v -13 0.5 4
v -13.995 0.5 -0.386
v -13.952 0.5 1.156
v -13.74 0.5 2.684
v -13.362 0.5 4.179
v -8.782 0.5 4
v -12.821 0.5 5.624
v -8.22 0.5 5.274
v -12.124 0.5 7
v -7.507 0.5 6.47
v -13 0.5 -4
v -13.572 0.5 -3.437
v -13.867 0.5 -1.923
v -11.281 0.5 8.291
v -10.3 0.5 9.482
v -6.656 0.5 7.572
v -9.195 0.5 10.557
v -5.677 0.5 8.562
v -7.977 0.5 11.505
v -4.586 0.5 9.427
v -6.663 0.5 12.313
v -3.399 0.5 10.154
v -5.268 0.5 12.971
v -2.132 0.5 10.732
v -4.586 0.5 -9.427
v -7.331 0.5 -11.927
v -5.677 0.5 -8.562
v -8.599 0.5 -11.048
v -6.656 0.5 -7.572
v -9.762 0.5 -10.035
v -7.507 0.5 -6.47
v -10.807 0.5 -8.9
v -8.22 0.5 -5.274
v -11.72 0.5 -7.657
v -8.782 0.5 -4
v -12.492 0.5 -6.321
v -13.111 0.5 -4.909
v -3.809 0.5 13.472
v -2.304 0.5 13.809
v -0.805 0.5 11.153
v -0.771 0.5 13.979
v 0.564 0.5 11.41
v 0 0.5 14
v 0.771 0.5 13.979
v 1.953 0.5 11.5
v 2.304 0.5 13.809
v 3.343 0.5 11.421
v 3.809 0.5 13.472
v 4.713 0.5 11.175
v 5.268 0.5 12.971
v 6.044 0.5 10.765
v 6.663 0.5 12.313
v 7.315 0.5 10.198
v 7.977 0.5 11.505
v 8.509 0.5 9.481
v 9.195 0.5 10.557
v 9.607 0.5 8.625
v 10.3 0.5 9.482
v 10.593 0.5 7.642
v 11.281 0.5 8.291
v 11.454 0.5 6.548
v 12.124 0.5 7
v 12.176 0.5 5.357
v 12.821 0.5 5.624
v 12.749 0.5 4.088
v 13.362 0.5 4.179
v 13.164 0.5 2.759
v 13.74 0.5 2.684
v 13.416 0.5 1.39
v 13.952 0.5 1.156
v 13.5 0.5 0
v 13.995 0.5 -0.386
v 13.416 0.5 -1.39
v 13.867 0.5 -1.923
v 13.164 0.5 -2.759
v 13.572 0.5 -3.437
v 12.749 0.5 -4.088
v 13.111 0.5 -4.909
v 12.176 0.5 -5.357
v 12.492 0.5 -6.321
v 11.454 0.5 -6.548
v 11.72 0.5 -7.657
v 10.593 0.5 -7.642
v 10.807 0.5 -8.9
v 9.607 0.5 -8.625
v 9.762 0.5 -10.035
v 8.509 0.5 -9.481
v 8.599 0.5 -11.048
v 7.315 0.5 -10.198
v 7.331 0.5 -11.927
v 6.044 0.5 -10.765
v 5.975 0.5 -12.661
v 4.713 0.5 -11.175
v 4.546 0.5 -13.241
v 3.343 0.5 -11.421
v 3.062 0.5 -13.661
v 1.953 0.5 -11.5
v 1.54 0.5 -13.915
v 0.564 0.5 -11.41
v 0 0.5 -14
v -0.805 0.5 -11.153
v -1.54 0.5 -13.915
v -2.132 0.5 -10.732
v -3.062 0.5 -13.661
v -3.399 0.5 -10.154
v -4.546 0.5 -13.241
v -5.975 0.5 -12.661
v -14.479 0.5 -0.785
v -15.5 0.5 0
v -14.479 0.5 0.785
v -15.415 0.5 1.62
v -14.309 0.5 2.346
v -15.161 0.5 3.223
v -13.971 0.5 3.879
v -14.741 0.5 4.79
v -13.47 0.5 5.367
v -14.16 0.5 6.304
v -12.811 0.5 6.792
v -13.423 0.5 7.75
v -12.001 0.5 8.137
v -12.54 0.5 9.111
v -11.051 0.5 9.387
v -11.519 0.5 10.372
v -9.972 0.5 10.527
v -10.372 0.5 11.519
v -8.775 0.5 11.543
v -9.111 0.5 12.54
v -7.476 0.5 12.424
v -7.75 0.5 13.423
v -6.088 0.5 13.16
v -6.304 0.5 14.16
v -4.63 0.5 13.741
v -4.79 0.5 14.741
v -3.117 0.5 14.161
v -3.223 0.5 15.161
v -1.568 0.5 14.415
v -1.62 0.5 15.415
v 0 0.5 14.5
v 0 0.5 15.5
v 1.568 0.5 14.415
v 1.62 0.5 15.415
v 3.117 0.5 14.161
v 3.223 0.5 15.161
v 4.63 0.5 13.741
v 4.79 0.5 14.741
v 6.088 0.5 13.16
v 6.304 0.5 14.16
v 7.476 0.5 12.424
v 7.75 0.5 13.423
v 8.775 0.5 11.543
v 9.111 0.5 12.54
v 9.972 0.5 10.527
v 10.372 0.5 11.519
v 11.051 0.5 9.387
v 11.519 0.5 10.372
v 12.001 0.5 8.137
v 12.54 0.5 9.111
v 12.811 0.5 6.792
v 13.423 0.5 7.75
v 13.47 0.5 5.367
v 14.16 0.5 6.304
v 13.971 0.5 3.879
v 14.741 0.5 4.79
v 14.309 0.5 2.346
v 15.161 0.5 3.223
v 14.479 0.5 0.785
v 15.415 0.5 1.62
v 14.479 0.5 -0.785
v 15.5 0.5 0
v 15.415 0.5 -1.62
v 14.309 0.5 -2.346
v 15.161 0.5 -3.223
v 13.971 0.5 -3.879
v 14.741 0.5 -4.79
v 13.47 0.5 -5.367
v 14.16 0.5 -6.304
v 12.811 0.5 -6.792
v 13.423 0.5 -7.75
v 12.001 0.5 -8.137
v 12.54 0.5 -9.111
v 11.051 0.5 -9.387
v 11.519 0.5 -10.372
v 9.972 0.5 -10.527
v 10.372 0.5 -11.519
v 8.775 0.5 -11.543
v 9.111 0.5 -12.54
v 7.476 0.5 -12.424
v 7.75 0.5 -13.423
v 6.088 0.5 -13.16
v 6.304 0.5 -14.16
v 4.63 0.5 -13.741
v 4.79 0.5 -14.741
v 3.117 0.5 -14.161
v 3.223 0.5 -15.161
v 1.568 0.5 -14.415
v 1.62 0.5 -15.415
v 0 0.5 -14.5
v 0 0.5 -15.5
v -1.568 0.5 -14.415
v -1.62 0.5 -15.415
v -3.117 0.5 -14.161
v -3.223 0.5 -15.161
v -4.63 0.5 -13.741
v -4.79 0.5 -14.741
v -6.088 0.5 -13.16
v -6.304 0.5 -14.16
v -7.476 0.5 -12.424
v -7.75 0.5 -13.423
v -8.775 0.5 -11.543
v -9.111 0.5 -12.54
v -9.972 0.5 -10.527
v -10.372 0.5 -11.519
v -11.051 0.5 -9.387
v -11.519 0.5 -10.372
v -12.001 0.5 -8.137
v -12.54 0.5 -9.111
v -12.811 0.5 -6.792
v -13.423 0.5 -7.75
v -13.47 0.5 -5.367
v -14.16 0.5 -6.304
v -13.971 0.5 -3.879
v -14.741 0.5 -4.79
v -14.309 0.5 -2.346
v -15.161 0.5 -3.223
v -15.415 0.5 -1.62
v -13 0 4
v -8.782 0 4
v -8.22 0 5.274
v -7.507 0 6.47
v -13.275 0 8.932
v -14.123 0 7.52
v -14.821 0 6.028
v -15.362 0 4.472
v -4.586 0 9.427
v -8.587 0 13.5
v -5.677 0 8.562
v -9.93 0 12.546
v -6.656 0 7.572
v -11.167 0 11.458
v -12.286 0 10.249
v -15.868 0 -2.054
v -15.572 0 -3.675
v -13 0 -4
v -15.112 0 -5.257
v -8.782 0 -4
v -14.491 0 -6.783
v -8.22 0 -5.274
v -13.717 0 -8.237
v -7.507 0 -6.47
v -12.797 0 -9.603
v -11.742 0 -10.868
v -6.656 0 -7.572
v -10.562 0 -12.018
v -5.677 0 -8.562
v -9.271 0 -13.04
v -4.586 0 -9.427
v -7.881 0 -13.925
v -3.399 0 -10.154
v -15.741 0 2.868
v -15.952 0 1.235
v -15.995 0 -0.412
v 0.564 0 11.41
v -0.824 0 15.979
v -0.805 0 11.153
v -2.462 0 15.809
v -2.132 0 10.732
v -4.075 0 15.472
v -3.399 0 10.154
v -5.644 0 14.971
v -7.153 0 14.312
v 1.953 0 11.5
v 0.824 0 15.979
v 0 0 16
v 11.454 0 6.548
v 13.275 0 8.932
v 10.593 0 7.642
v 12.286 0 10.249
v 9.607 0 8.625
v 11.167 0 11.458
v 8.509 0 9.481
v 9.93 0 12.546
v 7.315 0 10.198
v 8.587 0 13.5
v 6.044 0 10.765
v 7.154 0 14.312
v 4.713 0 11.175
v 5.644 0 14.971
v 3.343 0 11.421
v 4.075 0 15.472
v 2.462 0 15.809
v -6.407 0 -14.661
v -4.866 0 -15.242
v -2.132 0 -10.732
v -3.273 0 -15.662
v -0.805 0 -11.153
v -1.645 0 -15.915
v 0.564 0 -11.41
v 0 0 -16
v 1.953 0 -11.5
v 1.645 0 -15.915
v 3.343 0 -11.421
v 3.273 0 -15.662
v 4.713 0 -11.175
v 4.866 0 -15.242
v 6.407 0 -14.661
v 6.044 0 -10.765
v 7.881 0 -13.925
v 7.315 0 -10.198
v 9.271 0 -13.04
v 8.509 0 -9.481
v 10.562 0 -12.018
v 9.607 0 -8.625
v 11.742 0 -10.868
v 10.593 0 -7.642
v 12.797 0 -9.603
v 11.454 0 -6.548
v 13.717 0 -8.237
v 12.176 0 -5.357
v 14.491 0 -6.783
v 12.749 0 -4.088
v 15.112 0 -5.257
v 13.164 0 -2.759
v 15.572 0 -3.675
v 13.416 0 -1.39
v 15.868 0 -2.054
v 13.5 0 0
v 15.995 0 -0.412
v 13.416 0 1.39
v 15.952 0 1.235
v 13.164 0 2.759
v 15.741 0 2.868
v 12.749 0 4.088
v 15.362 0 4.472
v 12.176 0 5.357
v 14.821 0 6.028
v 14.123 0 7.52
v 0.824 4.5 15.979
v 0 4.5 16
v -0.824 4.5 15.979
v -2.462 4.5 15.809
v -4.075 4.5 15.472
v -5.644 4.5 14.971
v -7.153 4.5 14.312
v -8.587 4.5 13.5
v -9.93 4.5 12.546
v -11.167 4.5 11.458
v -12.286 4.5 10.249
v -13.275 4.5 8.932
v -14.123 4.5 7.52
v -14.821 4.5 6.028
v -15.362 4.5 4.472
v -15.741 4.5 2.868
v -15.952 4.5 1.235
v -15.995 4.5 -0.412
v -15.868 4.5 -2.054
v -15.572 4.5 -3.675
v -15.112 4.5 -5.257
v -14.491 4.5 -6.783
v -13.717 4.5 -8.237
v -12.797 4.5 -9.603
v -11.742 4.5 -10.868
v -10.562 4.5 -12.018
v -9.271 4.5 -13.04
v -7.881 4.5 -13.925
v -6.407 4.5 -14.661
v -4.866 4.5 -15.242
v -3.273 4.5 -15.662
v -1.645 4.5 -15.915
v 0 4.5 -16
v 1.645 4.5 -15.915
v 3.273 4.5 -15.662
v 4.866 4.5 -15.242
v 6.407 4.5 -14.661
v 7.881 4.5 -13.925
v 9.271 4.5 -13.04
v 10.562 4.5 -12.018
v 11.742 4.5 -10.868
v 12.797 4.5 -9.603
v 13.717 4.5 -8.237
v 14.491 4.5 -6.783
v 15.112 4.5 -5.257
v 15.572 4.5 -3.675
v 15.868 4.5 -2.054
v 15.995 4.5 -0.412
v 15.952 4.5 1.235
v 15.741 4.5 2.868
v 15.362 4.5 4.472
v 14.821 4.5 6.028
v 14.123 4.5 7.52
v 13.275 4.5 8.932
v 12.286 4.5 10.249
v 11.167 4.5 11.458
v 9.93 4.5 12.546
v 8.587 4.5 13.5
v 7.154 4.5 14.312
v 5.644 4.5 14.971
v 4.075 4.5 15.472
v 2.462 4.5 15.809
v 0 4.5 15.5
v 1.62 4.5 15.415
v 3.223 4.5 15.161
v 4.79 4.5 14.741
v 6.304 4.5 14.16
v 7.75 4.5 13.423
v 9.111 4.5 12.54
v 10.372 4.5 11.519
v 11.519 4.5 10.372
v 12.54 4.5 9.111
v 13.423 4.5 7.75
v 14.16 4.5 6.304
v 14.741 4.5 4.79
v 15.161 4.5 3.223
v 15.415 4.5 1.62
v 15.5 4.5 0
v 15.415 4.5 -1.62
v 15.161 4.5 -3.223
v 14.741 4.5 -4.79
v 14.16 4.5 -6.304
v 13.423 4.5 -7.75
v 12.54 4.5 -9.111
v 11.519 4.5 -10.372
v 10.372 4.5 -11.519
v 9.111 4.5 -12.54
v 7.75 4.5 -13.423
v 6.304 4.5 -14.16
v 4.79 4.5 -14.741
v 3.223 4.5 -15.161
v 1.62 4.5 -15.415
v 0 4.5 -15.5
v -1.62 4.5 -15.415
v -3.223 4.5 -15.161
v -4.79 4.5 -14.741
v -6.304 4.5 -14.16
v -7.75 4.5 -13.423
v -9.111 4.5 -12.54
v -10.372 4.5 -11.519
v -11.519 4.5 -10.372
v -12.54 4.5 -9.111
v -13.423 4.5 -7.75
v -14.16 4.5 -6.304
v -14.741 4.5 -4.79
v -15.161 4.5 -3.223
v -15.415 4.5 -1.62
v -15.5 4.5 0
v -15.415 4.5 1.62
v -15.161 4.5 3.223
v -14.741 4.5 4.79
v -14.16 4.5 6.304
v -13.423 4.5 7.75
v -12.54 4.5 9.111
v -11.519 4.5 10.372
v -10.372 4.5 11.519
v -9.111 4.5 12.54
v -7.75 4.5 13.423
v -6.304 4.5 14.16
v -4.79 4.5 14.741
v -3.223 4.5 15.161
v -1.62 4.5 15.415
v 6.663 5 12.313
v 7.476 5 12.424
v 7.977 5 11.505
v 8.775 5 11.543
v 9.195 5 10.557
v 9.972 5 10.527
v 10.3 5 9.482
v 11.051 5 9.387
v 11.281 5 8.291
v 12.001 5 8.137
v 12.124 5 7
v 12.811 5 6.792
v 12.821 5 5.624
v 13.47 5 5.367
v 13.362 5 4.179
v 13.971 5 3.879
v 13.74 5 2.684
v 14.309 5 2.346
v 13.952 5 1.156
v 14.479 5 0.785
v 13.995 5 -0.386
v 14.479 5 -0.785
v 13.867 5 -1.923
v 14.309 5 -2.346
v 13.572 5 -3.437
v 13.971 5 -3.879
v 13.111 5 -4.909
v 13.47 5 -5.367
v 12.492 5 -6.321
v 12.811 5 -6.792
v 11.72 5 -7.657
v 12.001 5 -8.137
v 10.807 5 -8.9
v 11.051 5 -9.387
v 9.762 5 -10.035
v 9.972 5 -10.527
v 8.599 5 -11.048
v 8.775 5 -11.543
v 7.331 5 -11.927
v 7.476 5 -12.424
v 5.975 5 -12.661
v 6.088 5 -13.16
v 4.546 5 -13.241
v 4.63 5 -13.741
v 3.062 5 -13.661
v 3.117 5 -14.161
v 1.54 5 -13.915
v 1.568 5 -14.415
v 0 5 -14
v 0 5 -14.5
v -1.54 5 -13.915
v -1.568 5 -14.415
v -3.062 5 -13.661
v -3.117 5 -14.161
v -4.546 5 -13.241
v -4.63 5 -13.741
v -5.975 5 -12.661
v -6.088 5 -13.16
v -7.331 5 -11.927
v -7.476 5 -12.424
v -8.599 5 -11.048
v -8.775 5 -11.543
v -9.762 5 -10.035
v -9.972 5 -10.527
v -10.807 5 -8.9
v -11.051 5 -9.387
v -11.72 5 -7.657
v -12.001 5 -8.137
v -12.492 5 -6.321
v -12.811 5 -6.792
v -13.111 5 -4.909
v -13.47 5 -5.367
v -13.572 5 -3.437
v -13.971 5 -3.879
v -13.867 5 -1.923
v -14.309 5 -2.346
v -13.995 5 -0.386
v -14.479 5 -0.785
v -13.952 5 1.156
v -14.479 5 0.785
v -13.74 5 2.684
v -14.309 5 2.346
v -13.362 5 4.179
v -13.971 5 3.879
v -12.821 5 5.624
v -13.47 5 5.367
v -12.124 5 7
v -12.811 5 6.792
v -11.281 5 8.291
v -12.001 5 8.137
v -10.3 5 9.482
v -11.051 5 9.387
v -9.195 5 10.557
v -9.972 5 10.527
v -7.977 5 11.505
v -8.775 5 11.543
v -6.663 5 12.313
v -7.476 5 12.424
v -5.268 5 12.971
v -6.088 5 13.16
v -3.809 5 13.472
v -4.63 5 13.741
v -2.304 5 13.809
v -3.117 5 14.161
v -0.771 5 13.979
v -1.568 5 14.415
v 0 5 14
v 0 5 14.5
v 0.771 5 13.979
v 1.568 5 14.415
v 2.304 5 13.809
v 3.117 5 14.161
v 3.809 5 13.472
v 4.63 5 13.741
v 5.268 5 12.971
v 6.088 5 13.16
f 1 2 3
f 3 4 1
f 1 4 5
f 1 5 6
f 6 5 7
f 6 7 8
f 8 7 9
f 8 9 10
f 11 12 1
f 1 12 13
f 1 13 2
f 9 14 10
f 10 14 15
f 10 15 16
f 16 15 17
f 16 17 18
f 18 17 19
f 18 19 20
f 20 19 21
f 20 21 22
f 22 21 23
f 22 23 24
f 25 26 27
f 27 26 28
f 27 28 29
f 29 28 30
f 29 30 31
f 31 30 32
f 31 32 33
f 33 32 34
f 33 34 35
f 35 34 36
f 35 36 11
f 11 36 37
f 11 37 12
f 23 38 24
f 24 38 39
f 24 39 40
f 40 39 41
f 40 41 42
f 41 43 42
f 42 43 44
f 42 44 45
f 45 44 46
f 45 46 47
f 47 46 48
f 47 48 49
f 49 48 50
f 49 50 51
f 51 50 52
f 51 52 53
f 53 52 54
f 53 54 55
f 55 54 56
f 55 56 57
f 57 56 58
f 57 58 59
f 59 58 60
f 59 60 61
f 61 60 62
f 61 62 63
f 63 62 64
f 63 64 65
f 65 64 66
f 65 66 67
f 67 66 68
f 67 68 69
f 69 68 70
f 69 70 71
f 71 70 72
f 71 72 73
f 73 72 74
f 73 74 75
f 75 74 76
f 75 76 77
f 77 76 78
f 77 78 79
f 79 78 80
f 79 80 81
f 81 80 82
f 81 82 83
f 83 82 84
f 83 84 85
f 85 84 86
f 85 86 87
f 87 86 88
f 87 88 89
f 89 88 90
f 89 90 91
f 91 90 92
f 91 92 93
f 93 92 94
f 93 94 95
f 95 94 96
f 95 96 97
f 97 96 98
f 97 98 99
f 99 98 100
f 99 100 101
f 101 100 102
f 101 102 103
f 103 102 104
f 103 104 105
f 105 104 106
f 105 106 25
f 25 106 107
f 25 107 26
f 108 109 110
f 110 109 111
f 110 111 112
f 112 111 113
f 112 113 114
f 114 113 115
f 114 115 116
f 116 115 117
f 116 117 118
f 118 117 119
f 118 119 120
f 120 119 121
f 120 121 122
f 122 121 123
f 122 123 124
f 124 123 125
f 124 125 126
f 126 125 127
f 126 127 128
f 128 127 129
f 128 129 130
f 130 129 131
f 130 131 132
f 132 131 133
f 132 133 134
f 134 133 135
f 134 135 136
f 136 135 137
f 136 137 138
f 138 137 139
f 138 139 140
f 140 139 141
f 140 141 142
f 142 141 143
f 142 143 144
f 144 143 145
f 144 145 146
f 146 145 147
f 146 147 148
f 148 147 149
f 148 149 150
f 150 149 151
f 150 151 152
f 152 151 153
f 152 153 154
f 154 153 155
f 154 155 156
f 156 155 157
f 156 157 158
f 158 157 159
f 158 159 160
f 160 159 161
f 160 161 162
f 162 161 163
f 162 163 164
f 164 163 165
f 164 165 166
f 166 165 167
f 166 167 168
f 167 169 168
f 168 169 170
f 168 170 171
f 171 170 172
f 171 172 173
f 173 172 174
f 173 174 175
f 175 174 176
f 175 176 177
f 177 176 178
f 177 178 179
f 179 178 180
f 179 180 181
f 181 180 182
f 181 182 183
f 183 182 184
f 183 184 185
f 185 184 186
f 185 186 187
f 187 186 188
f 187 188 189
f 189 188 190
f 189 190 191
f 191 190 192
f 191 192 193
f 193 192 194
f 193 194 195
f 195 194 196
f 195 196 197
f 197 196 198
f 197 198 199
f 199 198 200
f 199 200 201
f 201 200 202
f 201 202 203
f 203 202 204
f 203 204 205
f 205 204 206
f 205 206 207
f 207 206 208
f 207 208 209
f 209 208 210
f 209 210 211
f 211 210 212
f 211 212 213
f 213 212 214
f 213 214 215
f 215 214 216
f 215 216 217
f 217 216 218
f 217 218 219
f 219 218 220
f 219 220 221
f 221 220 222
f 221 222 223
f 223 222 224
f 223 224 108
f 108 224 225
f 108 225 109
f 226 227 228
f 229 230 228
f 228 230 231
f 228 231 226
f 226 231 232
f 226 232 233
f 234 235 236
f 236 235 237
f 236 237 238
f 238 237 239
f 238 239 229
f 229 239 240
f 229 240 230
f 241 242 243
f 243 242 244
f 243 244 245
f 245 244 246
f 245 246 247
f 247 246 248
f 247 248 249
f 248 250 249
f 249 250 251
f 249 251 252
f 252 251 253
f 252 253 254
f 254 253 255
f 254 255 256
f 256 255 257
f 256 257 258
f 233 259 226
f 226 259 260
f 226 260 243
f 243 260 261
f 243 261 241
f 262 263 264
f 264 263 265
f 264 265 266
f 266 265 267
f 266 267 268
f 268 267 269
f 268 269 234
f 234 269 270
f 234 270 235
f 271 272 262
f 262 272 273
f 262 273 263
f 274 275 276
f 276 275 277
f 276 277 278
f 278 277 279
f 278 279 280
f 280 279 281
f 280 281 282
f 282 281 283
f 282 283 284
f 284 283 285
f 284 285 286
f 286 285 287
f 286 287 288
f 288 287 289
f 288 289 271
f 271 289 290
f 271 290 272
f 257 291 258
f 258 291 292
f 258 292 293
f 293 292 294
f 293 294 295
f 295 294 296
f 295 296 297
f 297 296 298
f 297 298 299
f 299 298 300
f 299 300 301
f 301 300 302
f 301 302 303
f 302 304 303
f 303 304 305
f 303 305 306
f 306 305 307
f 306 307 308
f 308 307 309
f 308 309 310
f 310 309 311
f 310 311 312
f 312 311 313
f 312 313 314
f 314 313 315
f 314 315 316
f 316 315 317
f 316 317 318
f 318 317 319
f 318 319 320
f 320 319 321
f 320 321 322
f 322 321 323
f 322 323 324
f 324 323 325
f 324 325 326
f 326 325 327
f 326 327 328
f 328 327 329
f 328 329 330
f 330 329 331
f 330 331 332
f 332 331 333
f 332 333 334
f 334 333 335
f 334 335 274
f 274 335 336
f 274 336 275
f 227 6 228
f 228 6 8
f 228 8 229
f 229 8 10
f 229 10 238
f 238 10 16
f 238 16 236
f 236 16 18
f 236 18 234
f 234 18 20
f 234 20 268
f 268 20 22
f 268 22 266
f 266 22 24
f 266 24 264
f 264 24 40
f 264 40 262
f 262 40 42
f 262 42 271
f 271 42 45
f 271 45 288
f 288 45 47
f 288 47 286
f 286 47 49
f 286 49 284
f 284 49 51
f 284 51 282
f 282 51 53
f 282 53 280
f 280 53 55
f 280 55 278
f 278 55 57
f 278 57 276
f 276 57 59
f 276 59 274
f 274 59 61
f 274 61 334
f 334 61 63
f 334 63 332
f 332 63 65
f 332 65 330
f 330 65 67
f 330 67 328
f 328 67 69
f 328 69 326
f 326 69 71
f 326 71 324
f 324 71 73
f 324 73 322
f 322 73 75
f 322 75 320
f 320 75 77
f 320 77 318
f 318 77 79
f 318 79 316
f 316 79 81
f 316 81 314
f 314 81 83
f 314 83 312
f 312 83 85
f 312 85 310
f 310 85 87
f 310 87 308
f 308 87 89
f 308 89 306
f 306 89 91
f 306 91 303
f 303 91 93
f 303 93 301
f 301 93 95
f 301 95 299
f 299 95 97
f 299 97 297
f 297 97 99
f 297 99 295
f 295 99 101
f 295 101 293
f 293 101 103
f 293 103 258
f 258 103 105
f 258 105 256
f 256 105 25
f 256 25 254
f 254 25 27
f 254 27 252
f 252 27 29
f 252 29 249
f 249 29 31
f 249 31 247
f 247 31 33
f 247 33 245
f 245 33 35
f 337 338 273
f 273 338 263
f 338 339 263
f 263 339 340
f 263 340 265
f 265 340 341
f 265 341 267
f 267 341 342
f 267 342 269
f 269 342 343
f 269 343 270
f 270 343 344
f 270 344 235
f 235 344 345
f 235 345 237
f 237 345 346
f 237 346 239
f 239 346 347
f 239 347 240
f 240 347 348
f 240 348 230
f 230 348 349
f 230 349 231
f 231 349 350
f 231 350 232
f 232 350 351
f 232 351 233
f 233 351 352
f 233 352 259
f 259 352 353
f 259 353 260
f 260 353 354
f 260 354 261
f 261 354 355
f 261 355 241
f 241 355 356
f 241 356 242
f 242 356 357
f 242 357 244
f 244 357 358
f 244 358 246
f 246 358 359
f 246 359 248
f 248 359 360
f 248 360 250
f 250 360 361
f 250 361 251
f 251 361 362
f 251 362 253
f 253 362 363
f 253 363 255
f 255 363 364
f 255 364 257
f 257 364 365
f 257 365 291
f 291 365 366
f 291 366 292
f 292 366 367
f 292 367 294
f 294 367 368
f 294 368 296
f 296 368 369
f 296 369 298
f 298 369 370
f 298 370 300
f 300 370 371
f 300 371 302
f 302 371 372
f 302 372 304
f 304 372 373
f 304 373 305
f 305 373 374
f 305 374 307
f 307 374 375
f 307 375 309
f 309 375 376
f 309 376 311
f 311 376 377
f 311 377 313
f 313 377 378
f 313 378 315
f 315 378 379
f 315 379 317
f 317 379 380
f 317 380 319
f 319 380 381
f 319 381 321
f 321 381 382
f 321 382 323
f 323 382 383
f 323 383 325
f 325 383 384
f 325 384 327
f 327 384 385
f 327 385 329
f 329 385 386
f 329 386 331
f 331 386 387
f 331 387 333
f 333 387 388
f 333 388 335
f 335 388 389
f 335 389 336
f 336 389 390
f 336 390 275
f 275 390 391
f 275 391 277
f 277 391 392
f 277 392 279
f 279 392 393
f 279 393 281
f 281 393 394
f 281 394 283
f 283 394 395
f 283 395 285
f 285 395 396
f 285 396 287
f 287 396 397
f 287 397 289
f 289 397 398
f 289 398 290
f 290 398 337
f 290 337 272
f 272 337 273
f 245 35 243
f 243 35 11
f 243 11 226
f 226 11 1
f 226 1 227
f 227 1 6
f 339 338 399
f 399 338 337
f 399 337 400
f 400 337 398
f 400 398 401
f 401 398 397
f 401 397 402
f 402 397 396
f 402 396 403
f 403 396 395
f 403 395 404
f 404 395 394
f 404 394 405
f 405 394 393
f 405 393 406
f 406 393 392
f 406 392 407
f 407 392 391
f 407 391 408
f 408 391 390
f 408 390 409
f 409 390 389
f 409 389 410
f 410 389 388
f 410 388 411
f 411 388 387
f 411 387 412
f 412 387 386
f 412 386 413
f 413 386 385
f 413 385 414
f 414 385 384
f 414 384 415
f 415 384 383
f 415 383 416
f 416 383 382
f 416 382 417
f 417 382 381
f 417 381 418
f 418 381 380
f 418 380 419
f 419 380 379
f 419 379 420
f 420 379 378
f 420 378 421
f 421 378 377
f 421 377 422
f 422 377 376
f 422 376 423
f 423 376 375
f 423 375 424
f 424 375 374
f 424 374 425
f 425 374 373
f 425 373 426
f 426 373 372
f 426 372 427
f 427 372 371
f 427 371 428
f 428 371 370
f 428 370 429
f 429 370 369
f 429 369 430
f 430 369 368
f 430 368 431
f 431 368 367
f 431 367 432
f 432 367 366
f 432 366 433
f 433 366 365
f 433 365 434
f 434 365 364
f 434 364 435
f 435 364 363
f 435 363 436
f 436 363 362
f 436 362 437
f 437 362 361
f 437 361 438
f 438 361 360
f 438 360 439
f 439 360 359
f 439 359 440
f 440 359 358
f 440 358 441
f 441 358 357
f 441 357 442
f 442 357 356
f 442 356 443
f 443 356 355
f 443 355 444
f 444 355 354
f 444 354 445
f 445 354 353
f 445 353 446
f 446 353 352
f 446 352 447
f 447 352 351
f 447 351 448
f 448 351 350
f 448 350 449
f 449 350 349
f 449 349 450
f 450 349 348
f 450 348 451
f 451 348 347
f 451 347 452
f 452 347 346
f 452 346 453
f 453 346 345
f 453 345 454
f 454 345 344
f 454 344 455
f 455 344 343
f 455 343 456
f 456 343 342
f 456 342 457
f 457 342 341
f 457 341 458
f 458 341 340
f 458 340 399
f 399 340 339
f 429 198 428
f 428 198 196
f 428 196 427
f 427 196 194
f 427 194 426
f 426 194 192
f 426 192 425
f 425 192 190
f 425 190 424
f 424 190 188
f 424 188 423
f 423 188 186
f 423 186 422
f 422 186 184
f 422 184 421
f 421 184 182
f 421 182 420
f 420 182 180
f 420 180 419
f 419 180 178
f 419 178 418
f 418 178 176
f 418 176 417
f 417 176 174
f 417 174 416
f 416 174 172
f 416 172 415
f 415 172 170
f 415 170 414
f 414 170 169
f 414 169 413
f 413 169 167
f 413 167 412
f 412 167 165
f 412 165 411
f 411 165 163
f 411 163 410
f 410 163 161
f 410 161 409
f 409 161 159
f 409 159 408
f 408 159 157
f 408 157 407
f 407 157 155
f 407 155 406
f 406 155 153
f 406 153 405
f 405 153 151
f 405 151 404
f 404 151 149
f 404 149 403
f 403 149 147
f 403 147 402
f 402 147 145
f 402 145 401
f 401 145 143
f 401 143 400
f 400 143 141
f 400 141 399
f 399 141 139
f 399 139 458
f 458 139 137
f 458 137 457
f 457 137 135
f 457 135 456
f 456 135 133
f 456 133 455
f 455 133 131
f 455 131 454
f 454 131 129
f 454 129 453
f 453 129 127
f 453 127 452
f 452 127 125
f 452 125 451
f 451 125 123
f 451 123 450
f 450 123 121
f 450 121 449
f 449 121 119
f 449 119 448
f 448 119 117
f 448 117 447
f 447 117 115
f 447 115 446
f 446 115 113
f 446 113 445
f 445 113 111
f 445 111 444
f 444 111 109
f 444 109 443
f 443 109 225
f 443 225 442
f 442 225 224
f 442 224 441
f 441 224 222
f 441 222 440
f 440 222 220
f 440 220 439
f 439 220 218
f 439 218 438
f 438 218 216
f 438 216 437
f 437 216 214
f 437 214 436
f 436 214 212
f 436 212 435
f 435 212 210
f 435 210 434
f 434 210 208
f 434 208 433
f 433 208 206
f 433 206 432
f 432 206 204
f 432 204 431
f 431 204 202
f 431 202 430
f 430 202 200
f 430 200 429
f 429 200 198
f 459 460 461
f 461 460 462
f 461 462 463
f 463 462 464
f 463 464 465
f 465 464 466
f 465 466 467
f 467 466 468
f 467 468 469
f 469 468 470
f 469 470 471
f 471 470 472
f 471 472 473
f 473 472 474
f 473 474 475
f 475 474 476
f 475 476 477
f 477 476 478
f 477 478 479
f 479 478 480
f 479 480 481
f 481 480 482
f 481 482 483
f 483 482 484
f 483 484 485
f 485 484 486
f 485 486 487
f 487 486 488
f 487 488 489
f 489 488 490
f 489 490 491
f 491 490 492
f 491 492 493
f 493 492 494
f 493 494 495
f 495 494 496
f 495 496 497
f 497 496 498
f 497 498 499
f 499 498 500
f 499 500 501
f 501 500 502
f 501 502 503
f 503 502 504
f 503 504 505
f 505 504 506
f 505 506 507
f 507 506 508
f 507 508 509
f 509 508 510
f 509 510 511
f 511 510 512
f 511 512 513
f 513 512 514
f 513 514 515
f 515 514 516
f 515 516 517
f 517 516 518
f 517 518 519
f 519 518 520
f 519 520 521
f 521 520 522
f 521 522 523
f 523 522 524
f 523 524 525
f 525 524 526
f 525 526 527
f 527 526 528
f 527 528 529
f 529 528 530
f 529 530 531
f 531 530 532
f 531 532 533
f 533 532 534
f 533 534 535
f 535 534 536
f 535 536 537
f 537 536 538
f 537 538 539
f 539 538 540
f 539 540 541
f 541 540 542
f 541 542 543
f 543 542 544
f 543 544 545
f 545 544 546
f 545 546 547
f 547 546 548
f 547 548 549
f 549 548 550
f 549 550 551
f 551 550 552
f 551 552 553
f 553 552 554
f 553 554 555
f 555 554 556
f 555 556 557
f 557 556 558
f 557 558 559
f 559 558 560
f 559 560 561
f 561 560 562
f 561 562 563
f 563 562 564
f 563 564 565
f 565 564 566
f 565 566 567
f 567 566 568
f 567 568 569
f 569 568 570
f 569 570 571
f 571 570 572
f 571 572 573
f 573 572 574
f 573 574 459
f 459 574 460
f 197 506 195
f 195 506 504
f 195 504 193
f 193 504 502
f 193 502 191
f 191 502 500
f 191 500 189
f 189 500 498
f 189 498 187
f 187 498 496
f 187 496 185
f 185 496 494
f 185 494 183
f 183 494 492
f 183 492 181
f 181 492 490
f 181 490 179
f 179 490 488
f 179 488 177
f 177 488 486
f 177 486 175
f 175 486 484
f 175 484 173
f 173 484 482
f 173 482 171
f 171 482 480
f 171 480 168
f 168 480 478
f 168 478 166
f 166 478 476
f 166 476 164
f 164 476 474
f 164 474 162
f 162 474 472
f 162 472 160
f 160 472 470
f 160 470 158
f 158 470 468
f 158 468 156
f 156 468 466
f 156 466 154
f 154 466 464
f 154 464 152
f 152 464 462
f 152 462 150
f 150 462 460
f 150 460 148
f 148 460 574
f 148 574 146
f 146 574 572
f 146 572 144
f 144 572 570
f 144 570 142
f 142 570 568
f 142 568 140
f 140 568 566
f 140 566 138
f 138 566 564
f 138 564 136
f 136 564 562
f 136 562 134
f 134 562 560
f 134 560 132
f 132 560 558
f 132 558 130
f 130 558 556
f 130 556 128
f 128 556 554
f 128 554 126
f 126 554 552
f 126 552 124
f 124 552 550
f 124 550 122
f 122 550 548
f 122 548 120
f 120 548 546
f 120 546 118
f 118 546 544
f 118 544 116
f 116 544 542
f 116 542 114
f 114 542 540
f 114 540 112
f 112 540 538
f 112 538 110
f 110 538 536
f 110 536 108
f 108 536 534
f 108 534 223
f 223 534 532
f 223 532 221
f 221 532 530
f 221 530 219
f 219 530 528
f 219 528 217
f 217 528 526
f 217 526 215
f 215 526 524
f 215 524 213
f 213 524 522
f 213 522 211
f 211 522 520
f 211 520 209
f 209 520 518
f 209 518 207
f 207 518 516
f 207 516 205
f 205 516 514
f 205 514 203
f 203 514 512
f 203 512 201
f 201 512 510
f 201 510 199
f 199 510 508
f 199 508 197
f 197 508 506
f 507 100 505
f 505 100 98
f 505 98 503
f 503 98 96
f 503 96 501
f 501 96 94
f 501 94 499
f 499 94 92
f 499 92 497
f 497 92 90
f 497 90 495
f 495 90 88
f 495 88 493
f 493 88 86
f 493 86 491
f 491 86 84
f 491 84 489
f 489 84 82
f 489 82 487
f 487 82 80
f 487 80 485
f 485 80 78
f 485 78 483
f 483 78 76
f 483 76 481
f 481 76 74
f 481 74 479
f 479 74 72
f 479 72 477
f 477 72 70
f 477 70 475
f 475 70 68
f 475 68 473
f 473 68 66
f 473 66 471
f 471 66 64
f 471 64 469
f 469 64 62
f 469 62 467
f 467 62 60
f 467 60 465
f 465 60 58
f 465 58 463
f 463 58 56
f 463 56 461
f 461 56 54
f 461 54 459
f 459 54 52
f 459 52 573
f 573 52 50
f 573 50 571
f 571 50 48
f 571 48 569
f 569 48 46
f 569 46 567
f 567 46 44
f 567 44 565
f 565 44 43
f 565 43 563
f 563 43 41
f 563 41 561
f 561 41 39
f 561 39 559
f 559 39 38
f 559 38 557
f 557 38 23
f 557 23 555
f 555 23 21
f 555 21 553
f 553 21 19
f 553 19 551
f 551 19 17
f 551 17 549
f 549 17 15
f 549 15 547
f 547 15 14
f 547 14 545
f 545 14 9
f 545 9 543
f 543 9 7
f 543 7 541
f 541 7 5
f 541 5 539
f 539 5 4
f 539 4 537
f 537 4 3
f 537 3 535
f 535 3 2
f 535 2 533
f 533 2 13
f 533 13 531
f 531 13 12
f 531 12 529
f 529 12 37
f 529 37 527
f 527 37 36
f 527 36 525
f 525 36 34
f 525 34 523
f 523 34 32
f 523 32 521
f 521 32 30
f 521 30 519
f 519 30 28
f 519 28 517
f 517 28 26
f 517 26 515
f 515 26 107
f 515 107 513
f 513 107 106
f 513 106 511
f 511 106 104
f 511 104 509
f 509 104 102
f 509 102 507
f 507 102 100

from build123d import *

# Parameters (mm, degrees)
SKETCH1_R           = 16
BOSS_EXTRUDE1_DEPTH = 0.5
SKETCH2_R           = 11.5
CUT_EXTRUDE1_DEPTH  = 0.5
SKETCH3_W           = 15
SKETCH3_H           = 8
CUT_EXTRUDE4_DEPTH  = 2.5
SKETCH4_R           = 16
SKETCH4_R_2         = 15.5
BOSS_EXTRUDE2_DEPTH = 4.5
SKETCH5_R           = 14.5
SKETCH5_R_2         = 14
BOSS_EXTRUDE3_DEPTH = 4.5


with BuildPart() as part:
    # Sketch1 → Boss-Extrude1 (new body)
    with BuildSketch(Plane(origin=(0, 0, 0), x_dir=(1, 0, 0), z_dir=(0, 1, 0))):
        with Locations(Location((0, 0, 0), (0, 0, 270))):
            Circle(SKETCH1_R)
    extrude(amount=BOSS_EXTRUDE1_DEPTH)

    # Sketch2 → Cut-Extrude1 (cut)
    with BuildSketch(Plane(origin=(0, 0.5, 0), x_dir=(1, 0, 0), z_dir=(0, 1, 0))):
        with Locations(Location((2, 0, 0), (0, 0, 270))):
            Circle(SKETCH2_R)
    extrude(amount=-CUT_EXTRUDE1_DEPTH, mode=Mode.SUBTRACT)

    # Sketch3 → Cut-Extrude4 (cut)
    with BuildSketch(Plane(origin=(0, 0, 0), x_dir=(1, 0, 0), z_dir=(0, 1, 0))):
        with Locations((-5.5, 0)):
            Rectangle(SKETCH3_W, SKETCH3_H)
    extrude(amount=CUT_EXTRUDE4_DEPTH, mode=Mode.SUBTRACT)

    # Sketch4 → Boss-Extrude2 (add)
    with BuildSketch(Plane(origin=(0, 0, 0), x_dir=(1, 0, 0), z_dir=(0, 1, 0))):
        with Locations(Location((0, 0, 0), (0, 0, 270))):
            Circle(SKETCH4_R)
        with Locations(Location((0, 0, 0), (0, 0, 270))):
            Circle(SKETCH4_R_2, mode=Mode.SUBTRACT)
    extrude(amount=BOSS_EXTRUDE2_DEPTH)

    # Sketch5 → Boss-Extrude3 (add)
    with BuildSketch(Plane(origin=(0, 0.5, 0), x_dir=(1, 0, 0), z_dir=(0, 1, 0))):
        with Locations(Location((0, 0, 0), (0, 0, 270))):
            Circle(SKETCH5_R)
        with Locations(Location((0, 0, 0), (0, 0, 270))):
            Circle(SKETCH5_R_2, mode=Mode.SUBTRACT)
    extrude(amount=BOSS_EXTRUDE3_DEPTH)


solid = part.part
